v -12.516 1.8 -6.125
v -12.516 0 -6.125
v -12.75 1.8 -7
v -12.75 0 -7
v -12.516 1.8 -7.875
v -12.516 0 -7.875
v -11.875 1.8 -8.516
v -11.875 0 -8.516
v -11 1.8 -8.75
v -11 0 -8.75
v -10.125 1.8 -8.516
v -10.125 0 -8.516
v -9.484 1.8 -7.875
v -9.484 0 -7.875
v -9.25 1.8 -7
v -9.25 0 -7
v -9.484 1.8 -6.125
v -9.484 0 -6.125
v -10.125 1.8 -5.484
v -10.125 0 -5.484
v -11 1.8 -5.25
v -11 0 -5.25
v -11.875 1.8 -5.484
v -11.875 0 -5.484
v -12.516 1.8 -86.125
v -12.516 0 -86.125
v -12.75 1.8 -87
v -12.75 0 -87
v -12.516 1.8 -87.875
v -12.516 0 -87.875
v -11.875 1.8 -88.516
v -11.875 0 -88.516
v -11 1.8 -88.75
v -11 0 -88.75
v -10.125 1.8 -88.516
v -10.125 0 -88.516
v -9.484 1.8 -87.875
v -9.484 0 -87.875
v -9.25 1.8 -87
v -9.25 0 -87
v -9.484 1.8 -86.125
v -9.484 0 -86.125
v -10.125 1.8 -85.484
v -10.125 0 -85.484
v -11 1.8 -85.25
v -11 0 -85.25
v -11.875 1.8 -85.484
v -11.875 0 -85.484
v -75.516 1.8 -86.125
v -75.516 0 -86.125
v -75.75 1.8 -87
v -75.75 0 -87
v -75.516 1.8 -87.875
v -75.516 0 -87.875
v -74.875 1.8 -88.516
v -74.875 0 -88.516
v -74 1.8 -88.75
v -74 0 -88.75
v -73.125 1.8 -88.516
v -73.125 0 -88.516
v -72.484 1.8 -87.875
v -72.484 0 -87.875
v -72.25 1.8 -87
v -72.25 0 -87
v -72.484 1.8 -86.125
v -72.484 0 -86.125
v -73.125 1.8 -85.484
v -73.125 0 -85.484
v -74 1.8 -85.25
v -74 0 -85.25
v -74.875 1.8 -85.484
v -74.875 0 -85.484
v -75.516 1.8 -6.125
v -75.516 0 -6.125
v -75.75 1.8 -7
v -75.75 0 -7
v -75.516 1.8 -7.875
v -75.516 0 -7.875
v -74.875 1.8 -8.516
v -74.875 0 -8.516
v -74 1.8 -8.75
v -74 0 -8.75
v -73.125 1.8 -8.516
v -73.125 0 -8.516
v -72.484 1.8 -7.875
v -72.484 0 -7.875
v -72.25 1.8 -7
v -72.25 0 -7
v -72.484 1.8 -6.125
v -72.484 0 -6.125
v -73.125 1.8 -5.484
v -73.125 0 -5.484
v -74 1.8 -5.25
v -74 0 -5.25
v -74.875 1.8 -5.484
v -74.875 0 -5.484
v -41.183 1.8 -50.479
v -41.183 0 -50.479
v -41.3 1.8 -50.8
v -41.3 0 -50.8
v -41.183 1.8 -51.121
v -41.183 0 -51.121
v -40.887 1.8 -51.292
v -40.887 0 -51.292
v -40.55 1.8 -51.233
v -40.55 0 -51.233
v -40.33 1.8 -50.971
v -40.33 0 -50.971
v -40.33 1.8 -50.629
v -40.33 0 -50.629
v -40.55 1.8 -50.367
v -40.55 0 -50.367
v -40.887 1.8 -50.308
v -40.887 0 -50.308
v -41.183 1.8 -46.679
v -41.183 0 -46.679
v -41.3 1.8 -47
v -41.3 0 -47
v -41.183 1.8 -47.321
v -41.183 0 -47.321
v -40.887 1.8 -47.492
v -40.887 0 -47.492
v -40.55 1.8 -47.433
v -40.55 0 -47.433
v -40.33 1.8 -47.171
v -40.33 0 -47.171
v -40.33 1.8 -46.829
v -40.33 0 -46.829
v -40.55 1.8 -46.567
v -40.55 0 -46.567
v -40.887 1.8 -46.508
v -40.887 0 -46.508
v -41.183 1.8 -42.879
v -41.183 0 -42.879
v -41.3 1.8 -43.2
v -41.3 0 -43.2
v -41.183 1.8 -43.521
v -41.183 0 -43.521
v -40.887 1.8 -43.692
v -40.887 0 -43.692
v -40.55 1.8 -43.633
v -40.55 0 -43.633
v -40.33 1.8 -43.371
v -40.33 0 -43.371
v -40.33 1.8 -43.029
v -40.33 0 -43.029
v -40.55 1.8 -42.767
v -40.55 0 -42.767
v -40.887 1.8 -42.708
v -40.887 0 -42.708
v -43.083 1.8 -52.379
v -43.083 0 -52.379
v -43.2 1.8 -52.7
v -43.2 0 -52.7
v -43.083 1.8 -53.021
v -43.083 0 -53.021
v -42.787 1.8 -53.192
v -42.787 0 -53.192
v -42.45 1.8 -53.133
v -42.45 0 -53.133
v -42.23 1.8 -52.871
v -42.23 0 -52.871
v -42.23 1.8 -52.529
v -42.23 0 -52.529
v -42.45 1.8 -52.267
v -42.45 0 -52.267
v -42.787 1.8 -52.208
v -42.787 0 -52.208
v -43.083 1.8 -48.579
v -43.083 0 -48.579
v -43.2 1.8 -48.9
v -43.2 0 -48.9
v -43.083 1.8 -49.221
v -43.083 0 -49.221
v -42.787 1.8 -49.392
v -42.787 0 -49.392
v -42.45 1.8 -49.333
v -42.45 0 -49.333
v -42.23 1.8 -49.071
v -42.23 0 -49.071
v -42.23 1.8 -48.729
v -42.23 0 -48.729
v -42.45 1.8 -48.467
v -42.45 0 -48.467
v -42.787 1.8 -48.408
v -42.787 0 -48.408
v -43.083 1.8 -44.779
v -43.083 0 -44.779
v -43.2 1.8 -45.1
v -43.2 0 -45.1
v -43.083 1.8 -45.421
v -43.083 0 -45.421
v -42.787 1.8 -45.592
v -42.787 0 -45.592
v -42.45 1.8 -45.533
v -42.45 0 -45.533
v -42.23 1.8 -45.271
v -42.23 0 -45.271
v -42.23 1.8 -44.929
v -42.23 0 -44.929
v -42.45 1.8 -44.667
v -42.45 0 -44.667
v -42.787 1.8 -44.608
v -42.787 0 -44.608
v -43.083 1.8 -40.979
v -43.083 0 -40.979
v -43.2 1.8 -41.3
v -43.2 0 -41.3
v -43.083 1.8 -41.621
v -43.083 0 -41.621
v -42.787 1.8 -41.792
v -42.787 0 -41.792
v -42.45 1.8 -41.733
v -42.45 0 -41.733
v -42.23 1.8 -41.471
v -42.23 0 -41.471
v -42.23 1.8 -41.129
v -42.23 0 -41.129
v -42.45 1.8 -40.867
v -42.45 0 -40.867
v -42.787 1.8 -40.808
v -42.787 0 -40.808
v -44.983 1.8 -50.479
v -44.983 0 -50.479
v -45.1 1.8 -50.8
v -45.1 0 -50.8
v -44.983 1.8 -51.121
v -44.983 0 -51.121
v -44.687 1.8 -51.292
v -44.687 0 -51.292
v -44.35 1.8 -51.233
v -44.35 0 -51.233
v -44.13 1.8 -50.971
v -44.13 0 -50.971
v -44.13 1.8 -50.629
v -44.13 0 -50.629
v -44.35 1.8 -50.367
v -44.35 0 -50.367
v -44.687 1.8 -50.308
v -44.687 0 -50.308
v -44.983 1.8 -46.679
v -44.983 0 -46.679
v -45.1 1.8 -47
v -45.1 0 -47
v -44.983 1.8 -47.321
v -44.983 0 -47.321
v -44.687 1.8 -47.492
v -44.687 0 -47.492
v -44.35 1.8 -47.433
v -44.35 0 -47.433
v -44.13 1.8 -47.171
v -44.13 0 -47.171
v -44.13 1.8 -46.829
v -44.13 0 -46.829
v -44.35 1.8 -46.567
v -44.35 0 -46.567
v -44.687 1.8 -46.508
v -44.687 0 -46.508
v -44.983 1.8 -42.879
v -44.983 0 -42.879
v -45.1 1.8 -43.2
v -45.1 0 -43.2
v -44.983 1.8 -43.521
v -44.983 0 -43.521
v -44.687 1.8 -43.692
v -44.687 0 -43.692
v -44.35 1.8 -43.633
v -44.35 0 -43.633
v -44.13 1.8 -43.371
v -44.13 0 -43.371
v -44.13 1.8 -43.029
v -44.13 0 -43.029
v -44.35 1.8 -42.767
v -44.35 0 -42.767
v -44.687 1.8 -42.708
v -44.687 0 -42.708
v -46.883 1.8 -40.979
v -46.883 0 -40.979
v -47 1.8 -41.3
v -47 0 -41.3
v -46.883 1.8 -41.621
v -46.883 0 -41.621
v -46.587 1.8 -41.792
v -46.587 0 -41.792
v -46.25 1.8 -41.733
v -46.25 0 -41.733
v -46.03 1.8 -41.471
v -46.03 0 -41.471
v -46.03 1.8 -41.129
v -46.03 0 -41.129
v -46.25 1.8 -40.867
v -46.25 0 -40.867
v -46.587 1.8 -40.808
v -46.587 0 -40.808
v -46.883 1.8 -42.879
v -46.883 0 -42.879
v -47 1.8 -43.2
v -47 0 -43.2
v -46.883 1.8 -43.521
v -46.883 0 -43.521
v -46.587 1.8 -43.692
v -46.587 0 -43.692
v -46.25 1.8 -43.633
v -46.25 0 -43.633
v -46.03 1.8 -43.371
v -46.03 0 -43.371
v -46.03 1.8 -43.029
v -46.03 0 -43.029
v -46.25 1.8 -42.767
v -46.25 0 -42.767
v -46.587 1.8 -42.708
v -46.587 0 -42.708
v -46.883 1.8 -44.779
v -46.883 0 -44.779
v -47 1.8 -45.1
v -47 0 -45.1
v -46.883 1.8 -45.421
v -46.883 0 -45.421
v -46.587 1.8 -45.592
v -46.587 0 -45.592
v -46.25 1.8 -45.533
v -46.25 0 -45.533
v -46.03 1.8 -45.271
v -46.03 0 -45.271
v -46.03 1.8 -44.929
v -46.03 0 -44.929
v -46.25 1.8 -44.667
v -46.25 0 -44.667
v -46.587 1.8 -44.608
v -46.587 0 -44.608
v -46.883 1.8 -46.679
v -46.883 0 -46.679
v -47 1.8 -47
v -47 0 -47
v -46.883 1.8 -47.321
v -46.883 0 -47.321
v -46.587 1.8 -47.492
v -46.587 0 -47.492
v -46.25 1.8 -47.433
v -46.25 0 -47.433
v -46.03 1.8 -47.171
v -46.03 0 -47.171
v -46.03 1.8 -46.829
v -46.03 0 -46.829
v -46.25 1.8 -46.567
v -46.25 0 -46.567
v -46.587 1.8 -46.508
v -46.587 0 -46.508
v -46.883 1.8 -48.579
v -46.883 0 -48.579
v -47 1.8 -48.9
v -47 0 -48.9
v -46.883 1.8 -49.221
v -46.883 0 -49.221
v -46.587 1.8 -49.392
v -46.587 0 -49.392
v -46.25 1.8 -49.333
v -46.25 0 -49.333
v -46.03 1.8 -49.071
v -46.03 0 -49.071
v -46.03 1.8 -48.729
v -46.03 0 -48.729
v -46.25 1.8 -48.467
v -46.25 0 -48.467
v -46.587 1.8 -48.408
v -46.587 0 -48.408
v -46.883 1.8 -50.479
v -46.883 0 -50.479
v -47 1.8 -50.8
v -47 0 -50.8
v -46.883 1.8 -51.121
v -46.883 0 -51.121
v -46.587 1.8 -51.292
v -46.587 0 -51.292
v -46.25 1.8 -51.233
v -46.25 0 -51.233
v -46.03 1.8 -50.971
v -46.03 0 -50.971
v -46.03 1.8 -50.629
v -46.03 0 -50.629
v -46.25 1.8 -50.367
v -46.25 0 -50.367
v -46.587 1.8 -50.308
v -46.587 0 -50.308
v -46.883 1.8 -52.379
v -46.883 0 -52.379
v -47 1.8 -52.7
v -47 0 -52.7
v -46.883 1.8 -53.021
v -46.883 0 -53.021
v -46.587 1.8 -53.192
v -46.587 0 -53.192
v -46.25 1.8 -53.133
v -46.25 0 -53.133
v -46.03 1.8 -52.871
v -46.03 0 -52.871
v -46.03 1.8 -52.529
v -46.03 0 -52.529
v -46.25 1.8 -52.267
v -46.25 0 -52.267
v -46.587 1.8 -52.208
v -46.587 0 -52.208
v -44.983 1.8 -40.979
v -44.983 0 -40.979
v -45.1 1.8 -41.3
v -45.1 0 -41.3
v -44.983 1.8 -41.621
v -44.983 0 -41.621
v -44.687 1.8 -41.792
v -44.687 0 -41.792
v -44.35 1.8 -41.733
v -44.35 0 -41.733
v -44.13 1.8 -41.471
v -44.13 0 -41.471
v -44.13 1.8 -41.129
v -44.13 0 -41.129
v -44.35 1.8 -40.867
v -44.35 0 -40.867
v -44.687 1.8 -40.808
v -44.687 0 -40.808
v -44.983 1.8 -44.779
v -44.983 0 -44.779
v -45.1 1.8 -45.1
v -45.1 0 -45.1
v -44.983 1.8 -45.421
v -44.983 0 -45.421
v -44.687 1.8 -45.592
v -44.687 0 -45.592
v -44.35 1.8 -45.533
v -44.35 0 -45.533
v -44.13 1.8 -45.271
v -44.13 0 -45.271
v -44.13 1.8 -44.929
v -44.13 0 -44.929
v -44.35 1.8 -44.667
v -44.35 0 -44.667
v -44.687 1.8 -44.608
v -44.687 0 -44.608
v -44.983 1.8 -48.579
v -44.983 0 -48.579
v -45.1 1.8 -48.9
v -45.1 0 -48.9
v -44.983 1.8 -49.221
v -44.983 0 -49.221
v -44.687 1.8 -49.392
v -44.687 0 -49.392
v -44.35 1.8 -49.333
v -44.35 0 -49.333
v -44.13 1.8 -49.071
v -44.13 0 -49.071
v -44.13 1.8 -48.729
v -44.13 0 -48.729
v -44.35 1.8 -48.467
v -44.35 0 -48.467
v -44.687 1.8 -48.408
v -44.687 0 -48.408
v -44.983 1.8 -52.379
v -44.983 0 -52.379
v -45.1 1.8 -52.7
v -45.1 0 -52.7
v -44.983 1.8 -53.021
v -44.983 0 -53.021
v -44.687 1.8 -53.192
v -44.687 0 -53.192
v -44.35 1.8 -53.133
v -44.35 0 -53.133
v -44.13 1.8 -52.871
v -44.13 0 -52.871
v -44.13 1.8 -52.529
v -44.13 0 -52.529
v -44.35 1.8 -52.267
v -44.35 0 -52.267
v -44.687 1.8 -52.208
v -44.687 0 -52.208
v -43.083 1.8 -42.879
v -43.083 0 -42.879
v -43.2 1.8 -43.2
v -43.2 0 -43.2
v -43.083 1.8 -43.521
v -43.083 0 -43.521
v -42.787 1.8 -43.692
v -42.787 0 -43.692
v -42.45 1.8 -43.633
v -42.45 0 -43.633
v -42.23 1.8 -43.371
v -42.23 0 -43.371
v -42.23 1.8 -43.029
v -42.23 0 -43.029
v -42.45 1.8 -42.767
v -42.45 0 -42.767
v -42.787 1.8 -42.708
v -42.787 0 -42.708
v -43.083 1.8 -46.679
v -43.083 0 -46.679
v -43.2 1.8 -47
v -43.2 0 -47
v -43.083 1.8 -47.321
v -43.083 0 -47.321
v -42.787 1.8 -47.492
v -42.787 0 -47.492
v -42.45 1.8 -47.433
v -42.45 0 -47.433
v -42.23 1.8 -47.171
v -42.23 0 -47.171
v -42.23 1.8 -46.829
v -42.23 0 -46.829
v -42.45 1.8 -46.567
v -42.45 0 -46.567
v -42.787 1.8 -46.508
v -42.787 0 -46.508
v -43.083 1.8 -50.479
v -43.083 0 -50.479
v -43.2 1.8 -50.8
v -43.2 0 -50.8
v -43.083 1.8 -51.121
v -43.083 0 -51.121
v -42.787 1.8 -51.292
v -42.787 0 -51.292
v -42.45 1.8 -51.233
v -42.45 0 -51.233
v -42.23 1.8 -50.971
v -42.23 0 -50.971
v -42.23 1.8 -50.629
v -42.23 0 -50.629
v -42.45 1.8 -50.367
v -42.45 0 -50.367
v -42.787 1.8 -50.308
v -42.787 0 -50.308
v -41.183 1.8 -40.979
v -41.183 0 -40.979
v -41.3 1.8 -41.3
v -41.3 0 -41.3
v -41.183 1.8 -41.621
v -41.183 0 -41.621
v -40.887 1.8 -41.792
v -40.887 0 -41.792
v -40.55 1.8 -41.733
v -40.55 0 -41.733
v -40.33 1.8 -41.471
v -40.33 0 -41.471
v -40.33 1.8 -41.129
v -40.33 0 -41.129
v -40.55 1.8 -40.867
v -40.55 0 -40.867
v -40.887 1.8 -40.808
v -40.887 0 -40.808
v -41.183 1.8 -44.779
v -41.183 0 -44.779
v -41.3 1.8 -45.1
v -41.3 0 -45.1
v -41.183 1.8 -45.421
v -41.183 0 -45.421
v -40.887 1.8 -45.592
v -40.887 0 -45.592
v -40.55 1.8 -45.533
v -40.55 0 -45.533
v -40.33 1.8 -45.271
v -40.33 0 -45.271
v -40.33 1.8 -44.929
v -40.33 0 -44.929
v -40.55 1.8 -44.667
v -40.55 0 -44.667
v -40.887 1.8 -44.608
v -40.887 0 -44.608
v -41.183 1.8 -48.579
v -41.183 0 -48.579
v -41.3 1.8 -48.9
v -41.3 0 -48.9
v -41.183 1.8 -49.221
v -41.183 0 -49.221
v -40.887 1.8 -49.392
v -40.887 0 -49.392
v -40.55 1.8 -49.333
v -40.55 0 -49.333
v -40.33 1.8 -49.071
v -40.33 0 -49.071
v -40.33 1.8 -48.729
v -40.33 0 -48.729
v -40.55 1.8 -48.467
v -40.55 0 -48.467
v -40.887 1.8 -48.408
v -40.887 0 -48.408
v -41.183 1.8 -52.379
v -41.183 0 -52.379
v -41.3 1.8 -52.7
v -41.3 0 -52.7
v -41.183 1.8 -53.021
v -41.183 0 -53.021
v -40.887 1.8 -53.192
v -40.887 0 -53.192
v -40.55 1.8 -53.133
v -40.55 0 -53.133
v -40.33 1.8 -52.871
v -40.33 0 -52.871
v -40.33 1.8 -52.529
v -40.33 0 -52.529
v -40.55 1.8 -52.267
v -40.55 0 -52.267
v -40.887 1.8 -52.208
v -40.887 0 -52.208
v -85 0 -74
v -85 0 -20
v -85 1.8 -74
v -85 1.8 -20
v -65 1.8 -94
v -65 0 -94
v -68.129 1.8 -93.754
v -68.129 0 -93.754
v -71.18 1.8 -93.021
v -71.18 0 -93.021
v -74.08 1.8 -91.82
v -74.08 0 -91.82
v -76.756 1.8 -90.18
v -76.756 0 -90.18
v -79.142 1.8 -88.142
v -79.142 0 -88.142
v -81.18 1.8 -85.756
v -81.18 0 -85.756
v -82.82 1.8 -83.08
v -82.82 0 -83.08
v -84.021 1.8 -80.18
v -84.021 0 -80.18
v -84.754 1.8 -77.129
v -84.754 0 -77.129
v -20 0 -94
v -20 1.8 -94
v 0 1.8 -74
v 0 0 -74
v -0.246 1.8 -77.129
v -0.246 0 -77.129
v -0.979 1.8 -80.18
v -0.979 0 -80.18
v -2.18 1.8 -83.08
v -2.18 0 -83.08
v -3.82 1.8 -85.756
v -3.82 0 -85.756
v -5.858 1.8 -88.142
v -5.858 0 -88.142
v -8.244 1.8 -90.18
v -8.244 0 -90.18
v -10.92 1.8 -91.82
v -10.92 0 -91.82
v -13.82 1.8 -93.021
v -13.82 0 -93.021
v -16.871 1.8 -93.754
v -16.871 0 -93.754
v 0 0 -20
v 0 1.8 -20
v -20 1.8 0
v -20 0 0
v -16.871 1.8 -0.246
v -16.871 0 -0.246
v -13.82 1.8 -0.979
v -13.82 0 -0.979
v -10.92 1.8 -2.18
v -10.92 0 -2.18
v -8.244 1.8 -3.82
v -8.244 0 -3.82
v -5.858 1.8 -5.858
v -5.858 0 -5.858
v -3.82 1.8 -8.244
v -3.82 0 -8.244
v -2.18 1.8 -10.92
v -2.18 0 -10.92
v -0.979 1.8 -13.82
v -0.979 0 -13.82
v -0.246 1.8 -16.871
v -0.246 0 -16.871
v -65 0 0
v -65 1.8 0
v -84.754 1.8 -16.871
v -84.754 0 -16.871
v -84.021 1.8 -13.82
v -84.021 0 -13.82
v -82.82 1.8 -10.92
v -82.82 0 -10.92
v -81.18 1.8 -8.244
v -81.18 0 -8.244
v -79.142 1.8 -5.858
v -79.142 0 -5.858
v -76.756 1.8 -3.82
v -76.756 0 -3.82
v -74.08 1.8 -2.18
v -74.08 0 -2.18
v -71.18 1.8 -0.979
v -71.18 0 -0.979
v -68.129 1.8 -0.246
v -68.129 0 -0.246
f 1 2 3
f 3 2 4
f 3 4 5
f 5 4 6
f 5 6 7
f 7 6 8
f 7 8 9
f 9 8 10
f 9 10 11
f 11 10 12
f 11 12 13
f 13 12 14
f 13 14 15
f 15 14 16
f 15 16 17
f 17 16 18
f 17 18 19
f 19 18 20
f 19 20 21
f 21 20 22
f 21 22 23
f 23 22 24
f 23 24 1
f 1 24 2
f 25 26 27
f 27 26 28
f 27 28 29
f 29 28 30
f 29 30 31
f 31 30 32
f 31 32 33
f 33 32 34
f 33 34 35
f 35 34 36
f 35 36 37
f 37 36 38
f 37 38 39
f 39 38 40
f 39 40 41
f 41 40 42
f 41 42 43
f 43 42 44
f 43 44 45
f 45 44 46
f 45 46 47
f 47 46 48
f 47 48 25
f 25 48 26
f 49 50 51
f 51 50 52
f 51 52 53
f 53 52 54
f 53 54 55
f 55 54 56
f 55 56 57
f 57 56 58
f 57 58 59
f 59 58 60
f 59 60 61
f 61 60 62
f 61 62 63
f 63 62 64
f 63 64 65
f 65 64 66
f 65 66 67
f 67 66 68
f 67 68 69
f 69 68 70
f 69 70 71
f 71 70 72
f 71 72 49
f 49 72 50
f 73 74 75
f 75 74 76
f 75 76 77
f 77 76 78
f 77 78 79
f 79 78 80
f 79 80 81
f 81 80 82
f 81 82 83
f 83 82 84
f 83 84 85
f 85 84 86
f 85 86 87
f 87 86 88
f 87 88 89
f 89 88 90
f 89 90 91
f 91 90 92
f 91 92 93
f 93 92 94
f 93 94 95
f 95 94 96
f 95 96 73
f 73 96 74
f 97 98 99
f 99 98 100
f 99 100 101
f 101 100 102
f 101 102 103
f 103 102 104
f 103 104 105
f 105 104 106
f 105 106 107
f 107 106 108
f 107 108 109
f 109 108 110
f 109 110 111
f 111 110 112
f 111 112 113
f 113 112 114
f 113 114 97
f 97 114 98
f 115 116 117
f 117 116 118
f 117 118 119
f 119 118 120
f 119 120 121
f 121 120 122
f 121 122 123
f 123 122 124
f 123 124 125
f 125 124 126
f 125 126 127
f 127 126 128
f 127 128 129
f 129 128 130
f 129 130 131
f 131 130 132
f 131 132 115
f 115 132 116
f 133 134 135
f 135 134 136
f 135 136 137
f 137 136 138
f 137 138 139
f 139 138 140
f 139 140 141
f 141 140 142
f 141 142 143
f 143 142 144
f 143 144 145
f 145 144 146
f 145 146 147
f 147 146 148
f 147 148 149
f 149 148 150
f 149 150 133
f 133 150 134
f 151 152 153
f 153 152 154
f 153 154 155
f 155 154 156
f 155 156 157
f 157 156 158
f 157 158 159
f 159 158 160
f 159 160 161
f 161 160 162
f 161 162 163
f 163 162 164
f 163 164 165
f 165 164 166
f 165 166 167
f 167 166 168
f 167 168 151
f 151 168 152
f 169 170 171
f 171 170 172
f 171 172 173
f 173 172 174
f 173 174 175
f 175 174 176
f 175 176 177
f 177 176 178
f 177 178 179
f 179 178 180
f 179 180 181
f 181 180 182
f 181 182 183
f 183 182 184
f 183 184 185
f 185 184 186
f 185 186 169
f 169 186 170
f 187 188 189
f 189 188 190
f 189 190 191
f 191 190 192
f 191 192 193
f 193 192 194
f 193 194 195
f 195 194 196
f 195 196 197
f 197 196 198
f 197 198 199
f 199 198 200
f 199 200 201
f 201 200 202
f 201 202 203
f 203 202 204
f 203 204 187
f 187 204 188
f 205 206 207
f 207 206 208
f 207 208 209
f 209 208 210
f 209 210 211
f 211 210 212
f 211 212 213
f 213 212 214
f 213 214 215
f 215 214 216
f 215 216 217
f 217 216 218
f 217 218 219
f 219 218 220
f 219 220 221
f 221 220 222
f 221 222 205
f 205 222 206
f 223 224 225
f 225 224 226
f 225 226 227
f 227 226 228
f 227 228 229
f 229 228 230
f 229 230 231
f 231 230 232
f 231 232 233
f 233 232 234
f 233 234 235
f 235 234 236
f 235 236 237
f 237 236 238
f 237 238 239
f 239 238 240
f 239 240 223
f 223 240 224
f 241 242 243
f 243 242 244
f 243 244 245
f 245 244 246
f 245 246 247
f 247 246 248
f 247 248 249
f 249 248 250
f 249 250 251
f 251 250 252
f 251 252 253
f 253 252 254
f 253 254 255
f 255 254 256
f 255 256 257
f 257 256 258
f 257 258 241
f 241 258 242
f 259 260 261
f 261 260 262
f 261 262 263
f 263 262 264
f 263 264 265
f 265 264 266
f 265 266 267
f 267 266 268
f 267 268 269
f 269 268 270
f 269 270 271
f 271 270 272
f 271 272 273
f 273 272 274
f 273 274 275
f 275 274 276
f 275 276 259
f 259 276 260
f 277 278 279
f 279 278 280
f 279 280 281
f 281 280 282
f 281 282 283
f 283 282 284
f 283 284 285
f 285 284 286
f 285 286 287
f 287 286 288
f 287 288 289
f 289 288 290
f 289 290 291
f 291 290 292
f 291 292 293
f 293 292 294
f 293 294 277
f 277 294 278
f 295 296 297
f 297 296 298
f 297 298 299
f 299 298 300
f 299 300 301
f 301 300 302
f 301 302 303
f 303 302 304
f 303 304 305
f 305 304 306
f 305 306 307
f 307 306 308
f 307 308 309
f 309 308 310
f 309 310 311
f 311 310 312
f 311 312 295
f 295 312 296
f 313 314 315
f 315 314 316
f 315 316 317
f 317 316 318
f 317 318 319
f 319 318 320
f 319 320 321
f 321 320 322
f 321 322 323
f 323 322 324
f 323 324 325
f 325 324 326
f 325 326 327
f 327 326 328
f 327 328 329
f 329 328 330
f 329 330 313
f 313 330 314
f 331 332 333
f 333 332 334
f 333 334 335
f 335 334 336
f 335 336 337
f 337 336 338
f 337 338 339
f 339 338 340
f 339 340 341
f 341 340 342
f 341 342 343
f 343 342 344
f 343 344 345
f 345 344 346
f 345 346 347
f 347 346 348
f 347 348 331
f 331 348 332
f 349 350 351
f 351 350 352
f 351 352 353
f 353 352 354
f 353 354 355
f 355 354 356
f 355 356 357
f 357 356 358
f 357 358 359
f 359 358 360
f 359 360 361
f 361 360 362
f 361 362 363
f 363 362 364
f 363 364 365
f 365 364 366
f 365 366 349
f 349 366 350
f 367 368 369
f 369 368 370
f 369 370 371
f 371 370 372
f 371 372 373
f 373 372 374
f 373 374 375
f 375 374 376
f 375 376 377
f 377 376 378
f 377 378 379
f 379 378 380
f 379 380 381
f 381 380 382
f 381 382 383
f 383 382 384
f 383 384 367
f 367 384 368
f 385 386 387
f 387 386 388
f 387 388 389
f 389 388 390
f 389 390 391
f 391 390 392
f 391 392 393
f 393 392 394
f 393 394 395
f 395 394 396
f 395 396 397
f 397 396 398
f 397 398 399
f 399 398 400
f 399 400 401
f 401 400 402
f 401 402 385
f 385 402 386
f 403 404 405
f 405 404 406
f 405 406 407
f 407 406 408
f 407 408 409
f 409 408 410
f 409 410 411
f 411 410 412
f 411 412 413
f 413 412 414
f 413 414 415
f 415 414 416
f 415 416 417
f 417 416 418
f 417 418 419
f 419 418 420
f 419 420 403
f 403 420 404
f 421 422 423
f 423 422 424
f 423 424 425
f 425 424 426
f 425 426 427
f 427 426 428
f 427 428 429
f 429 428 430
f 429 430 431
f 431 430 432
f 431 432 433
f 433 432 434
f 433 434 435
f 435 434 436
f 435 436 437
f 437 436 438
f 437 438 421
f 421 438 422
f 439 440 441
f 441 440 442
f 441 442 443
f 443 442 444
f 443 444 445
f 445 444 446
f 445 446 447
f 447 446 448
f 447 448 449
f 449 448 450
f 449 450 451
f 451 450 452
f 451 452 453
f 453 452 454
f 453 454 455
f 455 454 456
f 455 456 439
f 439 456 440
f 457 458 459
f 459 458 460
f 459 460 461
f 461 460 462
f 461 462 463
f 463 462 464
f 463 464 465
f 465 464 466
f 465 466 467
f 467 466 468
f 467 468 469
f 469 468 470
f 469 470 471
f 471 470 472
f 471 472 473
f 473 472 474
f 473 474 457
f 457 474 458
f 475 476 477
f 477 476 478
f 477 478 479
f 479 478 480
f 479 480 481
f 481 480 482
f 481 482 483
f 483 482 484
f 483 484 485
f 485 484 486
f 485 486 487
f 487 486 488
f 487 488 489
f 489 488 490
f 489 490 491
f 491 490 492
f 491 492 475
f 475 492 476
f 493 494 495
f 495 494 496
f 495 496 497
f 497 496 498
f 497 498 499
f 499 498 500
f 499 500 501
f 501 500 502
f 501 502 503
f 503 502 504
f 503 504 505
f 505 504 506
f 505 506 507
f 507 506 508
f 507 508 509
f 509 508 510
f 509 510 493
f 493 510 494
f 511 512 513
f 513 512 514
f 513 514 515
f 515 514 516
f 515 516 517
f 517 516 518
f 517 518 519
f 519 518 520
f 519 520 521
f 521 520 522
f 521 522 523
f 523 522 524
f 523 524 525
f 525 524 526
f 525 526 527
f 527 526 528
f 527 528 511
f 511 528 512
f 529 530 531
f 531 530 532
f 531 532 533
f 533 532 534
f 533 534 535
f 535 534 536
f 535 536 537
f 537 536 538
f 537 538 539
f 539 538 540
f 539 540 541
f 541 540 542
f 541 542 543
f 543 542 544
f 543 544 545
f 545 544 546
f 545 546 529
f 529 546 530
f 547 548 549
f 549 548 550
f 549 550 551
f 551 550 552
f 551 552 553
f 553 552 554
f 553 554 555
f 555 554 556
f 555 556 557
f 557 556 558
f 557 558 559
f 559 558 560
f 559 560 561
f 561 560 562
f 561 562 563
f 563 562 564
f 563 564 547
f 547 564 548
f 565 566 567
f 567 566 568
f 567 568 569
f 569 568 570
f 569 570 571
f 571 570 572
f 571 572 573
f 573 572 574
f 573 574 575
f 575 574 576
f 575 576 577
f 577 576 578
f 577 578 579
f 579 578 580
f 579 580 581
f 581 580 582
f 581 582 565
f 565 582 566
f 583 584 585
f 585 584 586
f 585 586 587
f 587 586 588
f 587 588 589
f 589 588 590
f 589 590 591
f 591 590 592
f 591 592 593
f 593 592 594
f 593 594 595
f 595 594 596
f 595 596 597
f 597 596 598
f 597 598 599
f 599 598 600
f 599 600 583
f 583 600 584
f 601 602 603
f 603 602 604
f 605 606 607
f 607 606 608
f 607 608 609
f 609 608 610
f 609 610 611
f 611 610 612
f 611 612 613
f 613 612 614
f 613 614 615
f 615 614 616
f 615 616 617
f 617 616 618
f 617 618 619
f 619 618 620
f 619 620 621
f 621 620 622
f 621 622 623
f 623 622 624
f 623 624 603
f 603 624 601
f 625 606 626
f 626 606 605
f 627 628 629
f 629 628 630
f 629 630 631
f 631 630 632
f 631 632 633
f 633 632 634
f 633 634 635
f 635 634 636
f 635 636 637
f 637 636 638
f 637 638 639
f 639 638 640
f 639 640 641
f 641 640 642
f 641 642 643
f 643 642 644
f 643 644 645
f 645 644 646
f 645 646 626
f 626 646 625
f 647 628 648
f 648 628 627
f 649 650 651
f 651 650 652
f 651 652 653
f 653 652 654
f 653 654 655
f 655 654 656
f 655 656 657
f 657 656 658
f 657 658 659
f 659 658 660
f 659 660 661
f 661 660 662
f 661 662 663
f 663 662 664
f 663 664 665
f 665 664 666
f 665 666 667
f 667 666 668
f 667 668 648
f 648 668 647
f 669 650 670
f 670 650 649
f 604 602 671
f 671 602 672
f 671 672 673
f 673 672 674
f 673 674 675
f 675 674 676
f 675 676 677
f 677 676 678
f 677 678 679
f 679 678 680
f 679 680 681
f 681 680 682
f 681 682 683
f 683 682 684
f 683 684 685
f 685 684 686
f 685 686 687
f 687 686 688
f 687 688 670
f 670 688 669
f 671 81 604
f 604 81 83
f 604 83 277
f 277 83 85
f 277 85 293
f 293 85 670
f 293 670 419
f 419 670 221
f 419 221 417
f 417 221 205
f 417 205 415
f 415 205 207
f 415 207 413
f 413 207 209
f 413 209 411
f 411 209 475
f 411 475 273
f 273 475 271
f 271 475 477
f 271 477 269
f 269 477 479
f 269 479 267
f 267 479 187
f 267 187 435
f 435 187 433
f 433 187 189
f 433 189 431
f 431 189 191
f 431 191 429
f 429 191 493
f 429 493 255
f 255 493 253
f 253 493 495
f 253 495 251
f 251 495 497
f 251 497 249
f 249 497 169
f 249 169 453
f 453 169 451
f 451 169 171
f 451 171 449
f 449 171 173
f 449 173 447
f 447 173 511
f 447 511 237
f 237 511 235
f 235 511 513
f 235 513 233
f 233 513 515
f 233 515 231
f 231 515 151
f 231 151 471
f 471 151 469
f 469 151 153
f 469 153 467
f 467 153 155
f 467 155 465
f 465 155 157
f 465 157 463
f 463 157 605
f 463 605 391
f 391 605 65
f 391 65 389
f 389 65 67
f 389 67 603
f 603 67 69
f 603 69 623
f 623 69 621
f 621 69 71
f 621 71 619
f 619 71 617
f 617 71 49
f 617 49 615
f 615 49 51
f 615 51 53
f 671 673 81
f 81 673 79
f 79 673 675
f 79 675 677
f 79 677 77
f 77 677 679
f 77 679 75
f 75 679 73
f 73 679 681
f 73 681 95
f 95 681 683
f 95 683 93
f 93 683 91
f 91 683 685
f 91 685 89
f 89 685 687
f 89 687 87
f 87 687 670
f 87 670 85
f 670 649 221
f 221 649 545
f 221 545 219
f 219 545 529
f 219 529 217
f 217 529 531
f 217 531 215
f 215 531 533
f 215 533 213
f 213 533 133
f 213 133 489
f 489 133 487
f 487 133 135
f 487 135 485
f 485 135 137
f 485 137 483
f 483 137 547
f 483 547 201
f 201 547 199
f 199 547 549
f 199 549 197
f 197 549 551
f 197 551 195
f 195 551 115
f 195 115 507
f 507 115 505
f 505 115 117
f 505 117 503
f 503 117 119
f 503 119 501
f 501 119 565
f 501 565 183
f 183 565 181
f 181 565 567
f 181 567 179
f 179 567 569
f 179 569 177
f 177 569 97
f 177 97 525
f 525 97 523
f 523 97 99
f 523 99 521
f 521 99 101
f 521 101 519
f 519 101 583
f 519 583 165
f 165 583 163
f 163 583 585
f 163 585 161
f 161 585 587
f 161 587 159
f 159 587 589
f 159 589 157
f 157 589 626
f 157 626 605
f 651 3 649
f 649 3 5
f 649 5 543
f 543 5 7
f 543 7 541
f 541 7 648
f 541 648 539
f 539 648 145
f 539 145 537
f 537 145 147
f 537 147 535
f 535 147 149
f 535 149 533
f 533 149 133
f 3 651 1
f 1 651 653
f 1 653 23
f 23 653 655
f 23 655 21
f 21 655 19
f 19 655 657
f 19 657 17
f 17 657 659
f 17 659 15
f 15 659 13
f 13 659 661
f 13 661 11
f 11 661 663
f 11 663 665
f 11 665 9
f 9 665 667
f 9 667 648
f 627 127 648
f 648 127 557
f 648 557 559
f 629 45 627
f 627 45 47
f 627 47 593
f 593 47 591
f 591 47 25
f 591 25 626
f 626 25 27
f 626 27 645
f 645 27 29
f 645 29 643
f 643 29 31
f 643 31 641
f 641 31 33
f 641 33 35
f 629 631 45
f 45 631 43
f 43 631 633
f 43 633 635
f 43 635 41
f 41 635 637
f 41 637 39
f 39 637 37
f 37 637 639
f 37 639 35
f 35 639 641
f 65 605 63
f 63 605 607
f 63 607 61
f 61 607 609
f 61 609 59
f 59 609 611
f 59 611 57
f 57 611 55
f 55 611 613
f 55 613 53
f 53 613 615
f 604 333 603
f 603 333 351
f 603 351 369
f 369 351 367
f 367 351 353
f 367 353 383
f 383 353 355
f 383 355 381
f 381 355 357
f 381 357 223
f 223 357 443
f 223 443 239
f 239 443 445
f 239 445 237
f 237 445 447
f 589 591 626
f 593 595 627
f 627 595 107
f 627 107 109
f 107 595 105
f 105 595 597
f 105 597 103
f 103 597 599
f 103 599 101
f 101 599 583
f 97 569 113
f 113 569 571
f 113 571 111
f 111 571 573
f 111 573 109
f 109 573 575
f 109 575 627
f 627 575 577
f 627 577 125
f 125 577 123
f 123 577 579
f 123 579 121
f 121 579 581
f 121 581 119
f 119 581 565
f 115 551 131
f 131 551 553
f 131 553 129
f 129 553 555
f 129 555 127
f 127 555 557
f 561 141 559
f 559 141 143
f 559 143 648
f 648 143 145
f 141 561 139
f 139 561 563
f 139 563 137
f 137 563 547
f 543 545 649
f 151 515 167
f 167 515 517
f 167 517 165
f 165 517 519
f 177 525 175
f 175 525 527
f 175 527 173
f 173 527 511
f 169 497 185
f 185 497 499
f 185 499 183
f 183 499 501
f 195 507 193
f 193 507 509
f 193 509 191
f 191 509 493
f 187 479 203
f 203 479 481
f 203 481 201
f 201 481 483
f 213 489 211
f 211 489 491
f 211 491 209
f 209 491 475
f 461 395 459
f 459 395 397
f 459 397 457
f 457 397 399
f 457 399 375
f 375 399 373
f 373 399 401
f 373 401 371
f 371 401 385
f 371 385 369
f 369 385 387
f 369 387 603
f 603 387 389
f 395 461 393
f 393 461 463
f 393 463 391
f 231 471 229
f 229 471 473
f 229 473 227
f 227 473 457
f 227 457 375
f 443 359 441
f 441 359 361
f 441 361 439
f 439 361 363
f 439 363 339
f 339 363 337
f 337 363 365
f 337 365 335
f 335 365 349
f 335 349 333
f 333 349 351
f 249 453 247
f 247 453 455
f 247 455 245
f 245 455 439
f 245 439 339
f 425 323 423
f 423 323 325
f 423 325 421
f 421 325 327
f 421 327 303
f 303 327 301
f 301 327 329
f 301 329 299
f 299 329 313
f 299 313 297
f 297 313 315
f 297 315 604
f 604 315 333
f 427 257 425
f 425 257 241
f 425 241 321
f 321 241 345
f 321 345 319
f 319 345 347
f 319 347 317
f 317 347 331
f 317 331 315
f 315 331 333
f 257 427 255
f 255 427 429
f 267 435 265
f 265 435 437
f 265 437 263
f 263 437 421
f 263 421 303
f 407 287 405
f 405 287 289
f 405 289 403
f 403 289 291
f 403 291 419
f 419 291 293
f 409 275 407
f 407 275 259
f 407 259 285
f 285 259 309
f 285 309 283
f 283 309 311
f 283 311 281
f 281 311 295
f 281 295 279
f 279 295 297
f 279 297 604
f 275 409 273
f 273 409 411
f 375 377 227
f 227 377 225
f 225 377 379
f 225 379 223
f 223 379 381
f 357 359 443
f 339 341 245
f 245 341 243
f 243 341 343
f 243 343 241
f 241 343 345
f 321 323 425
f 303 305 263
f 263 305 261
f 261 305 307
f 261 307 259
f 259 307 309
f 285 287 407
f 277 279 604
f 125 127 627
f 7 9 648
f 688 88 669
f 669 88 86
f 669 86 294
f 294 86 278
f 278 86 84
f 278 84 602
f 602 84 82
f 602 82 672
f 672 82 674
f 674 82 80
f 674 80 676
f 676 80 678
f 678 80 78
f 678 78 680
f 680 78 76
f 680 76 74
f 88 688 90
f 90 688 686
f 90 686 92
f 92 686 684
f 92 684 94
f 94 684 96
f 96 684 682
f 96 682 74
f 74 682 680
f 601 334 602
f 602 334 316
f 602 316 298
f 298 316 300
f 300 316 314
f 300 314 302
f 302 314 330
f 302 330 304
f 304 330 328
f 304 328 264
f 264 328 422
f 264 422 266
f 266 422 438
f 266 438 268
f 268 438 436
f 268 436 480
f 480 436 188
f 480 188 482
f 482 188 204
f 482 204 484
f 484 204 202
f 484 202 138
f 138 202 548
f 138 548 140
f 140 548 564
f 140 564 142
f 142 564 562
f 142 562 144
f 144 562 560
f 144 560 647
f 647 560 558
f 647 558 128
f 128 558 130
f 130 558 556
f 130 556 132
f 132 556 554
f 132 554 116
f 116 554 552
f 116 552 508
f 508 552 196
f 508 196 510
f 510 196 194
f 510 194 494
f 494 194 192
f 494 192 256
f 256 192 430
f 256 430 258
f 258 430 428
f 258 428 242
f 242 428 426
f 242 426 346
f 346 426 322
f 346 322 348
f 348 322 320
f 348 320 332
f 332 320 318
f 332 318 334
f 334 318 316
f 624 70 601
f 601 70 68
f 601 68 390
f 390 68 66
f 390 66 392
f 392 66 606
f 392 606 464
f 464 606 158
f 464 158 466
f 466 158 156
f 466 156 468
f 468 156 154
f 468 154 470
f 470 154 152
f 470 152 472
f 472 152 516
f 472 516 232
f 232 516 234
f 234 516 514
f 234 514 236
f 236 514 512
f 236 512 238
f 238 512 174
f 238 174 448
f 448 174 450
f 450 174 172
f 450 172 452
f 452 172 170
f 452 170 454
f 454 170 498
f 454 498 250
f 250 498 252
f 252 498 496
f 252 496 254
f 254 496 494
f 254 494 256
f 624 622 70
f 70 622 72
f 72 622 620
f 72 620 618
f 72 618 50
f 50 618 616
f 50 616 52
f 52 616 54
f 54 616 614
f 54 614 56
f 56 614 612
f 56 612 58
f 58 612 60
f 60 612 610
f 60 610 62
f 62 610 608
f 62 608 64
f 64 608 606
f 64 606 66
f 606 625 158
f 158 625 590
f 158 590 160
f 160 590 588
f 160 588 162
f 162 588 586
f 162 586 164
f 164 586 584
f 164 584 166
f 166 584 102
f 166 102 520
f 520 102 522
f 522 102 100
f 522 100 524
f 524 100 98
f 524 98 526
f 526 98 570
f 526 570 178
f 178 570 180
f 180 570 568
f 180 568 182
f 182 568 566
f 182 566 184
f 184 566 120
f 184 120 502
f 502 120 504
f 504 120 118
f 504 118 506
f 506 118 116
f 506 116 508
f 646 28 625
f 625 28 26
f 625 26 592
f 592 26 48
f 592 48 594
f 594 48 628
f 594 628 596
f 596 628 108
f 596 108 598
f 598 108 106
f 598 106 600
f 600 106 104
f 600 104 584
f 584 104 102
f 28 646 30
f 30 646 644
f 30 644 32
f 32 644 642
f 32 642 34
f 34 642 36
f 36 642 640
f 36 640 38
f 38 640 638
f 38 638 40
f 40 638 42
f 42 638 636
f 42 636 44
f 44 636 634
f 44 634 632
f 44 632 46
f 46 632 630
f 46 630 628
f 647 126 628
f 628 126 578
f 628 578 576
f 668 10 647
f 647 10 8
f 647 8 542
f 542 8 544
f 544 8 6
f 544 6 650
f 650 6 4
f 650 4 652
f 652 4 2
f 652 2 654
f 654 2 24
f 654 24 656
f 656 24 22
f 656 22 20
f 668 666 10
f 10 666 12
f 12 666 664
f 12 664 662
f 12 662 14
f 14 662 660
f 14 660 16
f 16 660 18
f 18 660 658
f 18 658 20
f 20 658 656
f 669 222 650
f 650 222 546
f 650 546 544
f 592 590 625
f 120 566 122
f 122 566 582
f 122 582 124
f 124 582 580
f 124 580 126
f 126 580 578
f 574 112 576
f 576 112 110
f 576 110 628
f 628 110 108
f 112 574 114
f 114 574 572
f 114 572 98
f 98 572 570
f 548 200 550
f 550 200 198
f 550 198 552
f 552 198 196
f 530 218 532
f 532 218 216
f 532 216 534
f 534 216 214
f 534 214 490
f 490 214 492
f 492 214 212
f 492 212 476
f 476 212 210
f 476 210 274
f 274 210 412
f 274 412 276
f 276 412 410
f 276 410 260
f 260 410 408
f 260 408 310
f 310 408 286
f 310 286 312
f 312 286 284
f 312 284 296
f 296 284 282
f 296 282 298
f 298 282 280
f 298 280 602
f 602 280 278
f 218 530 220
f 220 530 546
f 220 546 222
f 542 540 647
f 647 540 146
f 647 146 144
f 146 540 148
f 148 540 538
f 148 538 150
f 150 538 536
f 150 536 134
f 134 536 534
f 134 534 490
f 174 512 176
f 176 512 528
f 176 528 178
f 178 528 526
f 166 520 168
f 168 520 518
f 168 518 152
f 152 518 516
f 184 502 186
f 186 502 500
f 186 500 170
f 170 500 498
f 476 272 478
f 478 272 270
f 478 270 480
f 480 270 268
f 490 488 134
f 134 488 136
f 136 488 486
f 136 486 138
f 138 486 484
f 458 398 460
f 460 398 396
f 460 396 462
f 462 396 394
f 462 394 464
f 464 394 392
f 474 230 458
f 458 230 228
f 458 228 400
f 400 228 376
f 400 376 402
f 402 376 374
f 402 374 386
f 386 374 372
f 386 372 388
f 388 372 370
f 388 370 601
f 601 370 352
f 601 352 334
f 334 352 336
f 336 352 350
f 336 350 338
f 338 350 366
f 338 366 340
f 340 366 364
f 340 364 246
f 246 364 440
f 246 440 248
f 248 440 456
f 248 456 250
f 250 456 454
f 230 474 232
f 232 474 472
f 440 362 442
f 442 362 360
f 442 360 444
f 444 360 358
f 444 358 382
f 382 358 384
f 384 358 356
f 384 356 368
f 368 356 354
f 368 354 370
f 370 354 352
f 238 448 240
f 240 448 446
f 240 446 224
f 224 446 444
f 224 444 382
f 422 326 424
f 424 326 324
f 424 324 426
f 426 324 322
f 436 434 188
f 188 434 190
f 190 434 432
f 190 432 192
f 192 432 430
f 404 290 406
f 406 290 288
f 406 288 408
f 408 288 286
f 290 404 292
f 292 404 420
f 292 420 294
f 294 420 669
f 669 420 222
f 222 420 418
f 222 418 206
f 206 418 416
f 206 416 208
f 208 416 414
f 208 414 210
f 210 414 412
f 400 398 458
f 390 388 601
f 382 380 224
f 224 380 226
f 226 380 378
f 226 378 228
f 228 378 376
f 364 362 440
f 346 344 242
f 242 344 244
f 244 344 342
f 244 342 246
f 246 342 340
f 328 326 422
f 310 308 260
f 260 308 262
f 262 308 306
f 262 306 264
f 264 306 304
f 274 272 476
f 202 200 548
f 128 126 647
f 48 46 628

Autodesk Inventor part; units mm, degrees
ref_plane "YZ Plane" through (0, 0, 0) normal (1, 0, 0) x (0, 1, 0)
ref_plane "XZ Plane" through (0, 0, 0) normal (0, 1, 0) x (-1, 0, 0)
ref_plane "XY Plane" through (0, 0, 0) normal (0, 0, 1) x (1, 0, 0)
sketch "Schizzo1" plane through (0, 0, 0) normal (0, 1, 0) x (-1, 0, 0)
  line L0 (20, 0) -> (65, 0)
  line L1 (85, -20) -> (85, -74)
  line L2 (65, -94) -> (20, -94)
  line L3 (0, -74) -> (0, -20)
  arc A0 (85, -20) -> (65, 0) centre (65, -20) ccw
  arc A1 (20, 0) -> (0, -20) centre (20, -20) ccw
  arc A2 (0, -74) -> (20, -94) centre (20, -74) ccw
  arc A3 (65, -94) -> (85, -74) centre (65, -74) ccw
  circle A4 centre (74, -7) radius 1.75
  circle A5 centre (74, -87) radius 1.75
  circle A6 centre (11, -87) radius 1.75
  circle A7 centre (11, -7) radius 1.75
  circle A8 centre (46.5, -41.3) radius 0.5
  circle A9 centre (46.5, -43.2) radius 0.5
  circle A10 centre (46.5, -45.1) radius 0.5
  circle A11 centre (46.5, -47) radius 0.5
  circle A12 centre (46.5, -48.9) radius 0.5
  circle A13 centre (46.5, -50.8) radius 0.5
  circle A14 centre (46.5, -52.7) radius 0.5
  circle A15 centre (44.6, -41.3) radius 0.5
  circle A16 centre (44.6, -43.2) radius 0.5
  circle A17 centre (44.6, -45.1) radius 0.5
  circle A18 centre (44.6, -47) radius 0.5
  circle A19 centre (44.6, -48.9) radius 0.5
  circle A20 centre (44.6, -50.8) radius 0.5
  circle A21 centre (44.6, -52.7) radius 0.5
  circle A22 centre (42.7, -41.3) radius 0.5
  circle A23 centre (42.7, -43.2) radius 0.5
  circle A24 centre (42.7, -45.1) radius 0.5
  circle A25 centre (42.7, -47) radius 0.5
  circle A26 centre (42.7, -48.9) radius 0.5
  circle A27 centre (42.7, -50.8) radius 0.5
  circle A28 centre (42.7, -52.7) radius 0.5
  circle A29 centre (40.8, -41.3) radius 0.5
  circle A30 centre (40.8, -43.2) radius 0.5
  circle A31 centre (40.8, -45.1) radius 0.5
  circle A32 centre (40.8, -47) radius 0.5
  circle A33 centre (40.8, -48.9) radius 0.5
  circle A34 centre (40.8, -50.8) radius 0.5
  circle A35 centre (40.8, -52.7) radius 0.5
  point P0 (46.5, -48.9)
  point P1 (46.5, -48.9)
  point P2 (44.6, -48.9)
  point P3 (42.7, -48.9)
  point P4 (40.8, -48.9)
  dimension "d20" = 3.5
  dimension "d21" = 3.5
  dimension "d22" = 3.5
  dimension "d23" = 3.5
  dimension "d29" = 1.9
  dimension "d32" = 1.9
  dimension "d37" = 1.9
  dimension "d40" = 1.9
  dimension "d43" = 1
  dimension "d46" = 1.9
  dimension "d49" = 1.9
extrude "Estrusione1" add sketch "Schizzo1" along normal blind 1.8
properties part number "pcb"
